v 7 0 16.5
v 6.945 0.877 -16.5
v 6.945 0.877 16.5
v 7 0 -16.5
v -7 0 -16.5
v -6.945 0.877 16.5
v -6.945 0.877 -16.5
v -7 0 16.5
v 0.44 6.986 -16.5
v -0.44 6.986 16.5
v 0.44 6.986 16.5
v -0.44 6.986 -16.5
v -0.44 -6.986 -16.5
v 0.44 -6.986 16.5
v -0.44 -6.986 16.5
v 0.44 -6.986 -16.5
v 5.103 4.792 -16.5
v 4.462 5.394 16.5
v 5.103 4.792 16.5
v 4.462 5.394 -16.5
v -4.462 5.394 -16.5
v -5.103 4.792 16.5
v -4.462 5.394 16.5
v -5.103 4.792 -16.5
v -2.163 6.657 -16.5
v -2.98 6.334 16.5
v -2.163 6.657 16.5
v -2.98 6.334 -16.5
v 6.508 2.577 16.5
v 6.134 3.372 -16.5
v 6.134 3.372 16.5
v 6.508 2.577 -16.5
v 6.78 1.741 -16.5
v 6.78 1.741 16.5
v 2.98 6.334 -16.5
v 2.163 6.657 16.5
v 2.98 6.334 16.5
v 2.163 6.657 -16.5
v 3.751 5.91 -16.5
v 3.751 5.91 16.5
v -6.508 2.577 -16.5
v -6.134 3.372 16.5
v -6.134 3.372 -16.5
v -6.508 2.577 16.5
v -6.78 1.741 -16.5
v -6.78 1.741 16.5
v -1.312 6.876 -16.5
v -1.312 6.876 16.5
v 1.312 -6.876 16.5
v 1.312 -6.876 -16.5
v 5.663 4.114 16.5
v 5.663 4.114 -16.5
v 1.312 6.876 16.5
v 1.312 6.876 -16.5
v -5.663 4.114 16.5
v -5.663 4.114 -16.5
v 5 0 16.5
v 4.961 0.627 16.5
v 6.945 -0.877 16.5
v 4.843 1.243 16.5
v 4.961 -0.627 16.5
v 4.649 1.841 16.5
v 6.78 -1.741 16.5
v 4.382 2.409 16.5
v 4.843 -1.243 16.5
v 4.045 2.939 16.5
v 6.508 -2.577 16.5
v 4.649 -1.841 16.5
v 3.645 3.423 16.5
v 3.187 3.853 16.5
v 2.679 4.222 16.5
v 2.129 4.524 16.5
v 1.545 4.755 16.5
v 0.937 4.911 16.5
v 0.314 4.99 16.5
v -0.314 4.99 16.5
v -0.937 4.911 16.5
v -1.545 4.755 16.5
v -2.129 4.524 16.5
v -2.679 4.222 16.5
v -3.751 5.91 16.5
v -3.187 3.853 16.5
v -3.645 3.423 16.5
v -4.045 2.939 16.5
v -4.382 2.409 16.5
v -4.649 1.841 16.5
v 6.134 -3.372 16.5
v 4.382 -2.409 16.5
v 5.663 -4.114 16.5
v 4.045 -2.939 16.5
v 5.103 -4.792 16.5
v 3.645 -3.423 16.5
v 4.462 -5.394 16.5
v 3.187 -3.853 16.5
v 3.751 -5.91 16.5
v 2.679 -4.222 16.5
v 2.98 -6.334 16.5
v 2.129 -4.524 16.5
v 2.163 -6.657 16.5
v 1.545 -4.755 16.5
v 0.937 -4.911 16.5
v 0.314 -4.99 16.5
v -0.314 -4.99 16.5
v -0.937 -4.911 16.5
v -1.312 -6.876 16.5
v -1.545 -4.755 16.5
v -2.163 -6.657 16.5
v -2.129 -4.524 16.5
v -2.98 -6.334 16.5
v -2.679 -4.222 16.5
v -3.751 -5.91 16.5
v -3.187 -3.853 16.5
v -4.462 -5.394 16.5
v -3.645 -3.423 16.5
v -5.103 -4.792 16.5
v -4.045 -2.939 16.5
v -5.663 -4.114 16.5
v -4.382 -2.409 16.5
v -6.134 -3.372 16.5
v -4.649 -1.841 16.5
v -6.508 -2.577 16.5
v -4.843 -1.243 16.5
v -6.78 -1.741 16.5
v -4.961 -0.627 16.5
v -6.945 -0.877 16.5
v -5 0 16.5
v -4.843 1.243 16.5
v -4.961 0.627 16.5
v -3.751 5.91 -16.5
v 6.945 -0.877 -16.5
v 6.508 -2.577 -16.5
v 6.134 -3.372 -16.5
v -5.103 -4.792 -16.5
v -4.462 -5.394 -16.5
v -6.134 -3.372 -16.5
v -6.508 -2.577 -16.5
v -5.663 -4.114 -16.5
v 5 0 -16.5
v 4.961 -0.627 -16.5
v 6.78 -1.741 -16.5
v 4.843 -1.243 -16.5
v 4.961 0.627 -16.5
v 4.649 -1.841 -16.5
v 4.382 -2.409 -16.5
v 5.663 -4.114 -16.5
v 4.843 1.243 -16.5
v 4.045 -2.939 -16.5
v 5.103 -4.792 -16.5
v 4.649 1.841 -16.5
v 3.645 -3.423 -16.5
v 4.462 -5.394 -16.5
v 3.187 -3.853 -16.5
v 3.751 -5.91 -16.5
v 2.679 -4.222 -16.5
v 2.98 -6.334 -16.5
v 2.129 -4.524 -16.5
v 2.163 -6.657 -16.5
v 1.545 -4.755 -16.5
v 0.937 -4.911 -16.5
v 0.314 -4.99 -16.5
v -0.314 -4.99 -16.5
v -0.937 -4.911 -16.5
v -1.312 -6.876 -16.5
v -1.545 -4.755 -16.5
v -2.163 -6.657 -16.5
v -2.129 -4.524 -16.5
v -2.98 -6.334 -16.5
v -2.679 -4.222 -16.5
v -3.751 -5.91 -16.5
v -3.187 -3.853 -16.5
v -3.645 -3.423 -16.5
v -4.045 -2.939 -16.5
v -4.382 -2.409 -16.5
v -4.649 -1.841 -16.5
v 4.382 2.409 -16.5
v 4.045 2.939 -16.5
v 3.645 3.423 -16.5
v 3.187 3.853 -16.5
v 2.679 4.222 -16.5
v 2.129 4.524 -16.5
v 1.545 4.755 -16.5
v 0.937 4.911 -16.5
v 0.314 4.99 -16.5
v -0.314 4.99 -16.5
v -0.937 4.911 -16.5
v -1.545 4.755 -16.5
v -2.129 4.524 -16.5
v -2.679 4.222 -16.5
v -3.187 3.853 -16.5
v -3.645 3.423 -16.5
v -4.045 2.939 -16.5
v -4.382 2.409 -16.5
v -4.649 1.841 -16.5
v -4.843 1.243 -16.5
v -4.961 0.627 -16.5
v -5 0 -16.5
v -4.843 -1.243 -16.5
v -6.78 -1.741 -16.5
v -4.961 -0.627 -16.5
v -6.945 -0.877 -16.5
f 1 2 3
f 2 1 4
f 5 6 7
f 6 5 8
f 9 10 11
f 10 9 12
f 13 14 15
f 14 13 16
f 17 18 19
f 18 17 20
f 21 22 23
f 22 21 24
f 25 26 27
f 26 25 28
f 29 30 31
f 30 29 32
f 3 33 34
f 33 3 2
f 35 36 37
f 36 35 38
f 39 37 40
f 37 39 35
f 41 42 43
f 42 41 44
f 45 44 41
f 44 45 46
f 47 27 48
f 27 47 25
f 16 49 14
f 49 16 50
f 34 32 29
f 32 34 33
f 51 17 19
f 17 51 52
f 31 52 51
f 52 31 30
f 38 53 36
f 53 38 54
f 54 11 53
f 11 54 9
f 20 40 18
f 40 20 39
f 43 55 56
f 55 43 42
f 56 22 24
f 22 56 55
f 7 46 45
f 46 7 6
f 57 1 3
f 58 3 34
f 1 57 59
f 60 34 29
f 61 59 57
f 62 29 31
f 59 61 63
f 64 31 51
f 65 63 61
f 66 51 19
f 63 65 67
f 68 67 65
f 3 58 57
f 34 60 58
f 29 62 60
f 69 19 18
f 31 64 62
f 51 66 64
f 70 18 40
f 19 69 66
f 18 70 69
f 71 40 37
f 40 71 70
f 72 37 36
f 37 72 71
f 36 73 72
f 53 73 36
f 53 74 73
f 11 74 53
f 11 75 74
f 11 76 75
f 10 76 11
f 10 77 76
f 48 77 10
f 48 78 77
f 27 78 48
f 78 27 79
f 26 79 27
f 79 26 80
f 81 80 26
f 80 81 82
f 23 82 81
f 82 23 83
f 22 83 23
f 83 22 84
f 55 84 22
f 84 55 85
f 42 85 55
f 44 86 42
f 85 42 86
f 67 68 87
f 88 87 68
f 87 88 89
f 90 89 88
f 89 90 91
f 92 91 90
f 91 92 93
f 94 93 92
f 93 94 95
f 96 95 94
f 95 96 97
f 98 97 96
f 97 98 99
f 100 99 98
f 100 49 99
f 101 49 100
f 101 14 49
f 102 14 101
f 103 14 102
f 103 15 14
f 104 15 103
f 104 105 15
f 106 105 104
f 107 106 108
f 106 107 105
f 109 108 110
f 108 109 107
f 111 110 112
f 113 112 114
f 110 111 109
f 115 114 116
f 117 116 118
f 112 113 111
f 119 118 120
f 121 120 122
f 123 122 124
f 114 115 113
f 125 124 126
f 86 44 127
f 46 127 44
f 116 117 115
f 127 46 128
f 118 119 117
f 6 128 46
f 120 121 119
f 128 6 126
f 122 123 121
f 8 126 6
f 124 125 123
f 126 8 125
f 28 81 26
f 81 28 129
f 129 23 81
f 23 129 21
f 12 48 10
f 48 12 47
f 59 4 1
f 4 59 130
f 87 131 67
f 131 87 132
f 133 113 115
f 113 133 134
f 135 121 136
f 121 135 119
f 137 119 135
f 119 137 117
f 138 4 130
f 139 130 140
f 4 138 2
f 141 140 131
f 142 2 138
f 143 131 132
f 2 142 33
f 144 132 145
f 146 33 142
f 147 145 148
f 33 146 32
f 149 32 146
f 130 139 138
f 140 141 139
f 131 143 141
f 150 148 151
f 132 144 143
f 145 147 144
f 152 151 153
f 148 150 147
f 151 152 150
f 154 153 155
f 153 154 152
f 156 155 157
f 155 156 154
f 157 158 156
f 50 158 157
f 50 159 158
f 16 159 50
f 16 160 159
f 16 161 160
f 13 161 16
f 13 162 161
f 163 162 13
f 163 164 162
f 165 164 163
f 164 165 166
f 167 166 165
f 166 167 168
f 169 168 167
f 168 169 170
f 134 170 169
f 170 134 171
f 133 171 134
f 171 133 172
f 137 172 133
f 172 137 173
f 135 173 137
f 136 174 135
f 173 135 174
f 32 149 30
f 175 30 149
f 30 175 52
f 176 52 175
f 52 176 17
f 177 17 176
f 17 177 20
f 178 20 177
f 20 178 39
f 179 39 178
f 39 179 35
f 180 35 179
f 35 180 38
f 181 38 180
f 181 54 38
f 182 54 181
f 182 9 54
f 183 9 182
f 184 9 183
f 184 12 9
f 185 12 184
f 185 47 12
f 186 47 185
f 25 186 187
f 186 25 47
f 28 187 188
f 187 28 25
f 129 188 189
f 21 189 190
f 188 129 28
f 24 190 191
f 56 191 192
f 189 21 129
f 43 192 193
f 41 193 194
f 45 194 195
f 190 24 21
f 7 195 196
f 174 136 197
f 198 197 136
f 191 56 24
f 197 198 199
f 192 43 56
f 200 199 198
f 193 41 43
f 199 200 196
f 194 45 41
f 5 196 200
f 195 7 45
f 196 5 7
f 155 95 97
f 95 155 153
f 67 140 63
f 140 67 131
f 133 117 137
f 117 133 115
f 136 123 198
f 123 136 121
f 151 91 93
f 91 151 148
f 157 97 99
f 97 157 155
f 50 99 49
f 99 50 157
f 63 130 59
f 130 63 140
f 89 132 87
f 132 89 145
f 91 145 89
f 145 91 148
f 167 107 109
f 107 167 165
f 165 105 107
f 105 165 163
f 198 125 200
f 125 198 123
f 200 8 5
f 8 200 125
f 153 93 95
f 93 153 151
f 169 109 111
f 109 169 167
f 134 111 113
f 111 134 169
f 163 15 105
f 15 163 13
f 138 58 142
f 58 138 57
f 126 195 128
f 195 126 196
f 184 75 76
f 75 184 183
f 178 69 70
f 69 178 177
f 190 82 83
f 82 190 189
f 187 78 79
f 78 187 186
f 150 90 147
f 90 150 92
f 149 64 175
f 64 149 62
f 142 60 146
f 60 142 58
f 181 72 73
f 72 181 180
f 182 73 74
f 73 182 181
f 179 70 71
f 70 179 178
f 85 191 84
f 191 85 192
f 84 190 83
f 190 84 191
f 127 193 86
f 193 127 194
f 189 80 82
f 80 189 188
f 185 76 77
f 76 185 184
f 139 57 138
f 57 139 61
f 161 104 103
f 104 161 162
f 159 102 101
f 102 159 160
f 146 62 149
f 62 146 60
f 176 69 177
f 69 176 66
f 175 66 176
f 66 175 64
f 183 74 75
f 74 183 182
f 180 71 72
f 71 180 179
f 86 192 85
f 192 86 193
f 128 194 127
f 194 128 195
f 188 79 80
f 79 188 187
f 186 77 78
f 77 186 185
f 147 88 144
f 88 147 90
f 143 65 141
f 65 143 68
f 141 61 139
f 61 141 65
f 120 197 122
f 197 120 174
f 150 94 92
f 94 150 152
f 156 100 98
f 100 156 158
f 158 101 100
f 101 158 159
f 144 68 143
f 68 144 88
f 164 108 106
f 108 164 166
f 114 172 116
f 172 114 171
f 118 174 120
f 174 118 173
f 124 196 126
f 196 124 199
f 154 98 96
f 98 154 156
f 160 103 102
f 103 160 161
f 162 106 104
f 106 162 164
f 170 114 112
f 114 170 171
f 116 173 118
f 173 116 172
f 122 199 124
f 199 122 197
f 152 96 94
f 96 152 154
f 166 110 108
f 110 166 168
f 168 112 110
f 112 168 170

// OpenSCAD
$fn = 50;


difference() {
	union() {
		translate(v = [0, 0, -16.5000000000]) {
			cylinder(h = 33, r = 7.0000000000);
		}
	}
	union() {
		translate(v = [0, 0, -100.0000000000]) {
			cylinder(h = 200, r = 5);
		}
	}
}
